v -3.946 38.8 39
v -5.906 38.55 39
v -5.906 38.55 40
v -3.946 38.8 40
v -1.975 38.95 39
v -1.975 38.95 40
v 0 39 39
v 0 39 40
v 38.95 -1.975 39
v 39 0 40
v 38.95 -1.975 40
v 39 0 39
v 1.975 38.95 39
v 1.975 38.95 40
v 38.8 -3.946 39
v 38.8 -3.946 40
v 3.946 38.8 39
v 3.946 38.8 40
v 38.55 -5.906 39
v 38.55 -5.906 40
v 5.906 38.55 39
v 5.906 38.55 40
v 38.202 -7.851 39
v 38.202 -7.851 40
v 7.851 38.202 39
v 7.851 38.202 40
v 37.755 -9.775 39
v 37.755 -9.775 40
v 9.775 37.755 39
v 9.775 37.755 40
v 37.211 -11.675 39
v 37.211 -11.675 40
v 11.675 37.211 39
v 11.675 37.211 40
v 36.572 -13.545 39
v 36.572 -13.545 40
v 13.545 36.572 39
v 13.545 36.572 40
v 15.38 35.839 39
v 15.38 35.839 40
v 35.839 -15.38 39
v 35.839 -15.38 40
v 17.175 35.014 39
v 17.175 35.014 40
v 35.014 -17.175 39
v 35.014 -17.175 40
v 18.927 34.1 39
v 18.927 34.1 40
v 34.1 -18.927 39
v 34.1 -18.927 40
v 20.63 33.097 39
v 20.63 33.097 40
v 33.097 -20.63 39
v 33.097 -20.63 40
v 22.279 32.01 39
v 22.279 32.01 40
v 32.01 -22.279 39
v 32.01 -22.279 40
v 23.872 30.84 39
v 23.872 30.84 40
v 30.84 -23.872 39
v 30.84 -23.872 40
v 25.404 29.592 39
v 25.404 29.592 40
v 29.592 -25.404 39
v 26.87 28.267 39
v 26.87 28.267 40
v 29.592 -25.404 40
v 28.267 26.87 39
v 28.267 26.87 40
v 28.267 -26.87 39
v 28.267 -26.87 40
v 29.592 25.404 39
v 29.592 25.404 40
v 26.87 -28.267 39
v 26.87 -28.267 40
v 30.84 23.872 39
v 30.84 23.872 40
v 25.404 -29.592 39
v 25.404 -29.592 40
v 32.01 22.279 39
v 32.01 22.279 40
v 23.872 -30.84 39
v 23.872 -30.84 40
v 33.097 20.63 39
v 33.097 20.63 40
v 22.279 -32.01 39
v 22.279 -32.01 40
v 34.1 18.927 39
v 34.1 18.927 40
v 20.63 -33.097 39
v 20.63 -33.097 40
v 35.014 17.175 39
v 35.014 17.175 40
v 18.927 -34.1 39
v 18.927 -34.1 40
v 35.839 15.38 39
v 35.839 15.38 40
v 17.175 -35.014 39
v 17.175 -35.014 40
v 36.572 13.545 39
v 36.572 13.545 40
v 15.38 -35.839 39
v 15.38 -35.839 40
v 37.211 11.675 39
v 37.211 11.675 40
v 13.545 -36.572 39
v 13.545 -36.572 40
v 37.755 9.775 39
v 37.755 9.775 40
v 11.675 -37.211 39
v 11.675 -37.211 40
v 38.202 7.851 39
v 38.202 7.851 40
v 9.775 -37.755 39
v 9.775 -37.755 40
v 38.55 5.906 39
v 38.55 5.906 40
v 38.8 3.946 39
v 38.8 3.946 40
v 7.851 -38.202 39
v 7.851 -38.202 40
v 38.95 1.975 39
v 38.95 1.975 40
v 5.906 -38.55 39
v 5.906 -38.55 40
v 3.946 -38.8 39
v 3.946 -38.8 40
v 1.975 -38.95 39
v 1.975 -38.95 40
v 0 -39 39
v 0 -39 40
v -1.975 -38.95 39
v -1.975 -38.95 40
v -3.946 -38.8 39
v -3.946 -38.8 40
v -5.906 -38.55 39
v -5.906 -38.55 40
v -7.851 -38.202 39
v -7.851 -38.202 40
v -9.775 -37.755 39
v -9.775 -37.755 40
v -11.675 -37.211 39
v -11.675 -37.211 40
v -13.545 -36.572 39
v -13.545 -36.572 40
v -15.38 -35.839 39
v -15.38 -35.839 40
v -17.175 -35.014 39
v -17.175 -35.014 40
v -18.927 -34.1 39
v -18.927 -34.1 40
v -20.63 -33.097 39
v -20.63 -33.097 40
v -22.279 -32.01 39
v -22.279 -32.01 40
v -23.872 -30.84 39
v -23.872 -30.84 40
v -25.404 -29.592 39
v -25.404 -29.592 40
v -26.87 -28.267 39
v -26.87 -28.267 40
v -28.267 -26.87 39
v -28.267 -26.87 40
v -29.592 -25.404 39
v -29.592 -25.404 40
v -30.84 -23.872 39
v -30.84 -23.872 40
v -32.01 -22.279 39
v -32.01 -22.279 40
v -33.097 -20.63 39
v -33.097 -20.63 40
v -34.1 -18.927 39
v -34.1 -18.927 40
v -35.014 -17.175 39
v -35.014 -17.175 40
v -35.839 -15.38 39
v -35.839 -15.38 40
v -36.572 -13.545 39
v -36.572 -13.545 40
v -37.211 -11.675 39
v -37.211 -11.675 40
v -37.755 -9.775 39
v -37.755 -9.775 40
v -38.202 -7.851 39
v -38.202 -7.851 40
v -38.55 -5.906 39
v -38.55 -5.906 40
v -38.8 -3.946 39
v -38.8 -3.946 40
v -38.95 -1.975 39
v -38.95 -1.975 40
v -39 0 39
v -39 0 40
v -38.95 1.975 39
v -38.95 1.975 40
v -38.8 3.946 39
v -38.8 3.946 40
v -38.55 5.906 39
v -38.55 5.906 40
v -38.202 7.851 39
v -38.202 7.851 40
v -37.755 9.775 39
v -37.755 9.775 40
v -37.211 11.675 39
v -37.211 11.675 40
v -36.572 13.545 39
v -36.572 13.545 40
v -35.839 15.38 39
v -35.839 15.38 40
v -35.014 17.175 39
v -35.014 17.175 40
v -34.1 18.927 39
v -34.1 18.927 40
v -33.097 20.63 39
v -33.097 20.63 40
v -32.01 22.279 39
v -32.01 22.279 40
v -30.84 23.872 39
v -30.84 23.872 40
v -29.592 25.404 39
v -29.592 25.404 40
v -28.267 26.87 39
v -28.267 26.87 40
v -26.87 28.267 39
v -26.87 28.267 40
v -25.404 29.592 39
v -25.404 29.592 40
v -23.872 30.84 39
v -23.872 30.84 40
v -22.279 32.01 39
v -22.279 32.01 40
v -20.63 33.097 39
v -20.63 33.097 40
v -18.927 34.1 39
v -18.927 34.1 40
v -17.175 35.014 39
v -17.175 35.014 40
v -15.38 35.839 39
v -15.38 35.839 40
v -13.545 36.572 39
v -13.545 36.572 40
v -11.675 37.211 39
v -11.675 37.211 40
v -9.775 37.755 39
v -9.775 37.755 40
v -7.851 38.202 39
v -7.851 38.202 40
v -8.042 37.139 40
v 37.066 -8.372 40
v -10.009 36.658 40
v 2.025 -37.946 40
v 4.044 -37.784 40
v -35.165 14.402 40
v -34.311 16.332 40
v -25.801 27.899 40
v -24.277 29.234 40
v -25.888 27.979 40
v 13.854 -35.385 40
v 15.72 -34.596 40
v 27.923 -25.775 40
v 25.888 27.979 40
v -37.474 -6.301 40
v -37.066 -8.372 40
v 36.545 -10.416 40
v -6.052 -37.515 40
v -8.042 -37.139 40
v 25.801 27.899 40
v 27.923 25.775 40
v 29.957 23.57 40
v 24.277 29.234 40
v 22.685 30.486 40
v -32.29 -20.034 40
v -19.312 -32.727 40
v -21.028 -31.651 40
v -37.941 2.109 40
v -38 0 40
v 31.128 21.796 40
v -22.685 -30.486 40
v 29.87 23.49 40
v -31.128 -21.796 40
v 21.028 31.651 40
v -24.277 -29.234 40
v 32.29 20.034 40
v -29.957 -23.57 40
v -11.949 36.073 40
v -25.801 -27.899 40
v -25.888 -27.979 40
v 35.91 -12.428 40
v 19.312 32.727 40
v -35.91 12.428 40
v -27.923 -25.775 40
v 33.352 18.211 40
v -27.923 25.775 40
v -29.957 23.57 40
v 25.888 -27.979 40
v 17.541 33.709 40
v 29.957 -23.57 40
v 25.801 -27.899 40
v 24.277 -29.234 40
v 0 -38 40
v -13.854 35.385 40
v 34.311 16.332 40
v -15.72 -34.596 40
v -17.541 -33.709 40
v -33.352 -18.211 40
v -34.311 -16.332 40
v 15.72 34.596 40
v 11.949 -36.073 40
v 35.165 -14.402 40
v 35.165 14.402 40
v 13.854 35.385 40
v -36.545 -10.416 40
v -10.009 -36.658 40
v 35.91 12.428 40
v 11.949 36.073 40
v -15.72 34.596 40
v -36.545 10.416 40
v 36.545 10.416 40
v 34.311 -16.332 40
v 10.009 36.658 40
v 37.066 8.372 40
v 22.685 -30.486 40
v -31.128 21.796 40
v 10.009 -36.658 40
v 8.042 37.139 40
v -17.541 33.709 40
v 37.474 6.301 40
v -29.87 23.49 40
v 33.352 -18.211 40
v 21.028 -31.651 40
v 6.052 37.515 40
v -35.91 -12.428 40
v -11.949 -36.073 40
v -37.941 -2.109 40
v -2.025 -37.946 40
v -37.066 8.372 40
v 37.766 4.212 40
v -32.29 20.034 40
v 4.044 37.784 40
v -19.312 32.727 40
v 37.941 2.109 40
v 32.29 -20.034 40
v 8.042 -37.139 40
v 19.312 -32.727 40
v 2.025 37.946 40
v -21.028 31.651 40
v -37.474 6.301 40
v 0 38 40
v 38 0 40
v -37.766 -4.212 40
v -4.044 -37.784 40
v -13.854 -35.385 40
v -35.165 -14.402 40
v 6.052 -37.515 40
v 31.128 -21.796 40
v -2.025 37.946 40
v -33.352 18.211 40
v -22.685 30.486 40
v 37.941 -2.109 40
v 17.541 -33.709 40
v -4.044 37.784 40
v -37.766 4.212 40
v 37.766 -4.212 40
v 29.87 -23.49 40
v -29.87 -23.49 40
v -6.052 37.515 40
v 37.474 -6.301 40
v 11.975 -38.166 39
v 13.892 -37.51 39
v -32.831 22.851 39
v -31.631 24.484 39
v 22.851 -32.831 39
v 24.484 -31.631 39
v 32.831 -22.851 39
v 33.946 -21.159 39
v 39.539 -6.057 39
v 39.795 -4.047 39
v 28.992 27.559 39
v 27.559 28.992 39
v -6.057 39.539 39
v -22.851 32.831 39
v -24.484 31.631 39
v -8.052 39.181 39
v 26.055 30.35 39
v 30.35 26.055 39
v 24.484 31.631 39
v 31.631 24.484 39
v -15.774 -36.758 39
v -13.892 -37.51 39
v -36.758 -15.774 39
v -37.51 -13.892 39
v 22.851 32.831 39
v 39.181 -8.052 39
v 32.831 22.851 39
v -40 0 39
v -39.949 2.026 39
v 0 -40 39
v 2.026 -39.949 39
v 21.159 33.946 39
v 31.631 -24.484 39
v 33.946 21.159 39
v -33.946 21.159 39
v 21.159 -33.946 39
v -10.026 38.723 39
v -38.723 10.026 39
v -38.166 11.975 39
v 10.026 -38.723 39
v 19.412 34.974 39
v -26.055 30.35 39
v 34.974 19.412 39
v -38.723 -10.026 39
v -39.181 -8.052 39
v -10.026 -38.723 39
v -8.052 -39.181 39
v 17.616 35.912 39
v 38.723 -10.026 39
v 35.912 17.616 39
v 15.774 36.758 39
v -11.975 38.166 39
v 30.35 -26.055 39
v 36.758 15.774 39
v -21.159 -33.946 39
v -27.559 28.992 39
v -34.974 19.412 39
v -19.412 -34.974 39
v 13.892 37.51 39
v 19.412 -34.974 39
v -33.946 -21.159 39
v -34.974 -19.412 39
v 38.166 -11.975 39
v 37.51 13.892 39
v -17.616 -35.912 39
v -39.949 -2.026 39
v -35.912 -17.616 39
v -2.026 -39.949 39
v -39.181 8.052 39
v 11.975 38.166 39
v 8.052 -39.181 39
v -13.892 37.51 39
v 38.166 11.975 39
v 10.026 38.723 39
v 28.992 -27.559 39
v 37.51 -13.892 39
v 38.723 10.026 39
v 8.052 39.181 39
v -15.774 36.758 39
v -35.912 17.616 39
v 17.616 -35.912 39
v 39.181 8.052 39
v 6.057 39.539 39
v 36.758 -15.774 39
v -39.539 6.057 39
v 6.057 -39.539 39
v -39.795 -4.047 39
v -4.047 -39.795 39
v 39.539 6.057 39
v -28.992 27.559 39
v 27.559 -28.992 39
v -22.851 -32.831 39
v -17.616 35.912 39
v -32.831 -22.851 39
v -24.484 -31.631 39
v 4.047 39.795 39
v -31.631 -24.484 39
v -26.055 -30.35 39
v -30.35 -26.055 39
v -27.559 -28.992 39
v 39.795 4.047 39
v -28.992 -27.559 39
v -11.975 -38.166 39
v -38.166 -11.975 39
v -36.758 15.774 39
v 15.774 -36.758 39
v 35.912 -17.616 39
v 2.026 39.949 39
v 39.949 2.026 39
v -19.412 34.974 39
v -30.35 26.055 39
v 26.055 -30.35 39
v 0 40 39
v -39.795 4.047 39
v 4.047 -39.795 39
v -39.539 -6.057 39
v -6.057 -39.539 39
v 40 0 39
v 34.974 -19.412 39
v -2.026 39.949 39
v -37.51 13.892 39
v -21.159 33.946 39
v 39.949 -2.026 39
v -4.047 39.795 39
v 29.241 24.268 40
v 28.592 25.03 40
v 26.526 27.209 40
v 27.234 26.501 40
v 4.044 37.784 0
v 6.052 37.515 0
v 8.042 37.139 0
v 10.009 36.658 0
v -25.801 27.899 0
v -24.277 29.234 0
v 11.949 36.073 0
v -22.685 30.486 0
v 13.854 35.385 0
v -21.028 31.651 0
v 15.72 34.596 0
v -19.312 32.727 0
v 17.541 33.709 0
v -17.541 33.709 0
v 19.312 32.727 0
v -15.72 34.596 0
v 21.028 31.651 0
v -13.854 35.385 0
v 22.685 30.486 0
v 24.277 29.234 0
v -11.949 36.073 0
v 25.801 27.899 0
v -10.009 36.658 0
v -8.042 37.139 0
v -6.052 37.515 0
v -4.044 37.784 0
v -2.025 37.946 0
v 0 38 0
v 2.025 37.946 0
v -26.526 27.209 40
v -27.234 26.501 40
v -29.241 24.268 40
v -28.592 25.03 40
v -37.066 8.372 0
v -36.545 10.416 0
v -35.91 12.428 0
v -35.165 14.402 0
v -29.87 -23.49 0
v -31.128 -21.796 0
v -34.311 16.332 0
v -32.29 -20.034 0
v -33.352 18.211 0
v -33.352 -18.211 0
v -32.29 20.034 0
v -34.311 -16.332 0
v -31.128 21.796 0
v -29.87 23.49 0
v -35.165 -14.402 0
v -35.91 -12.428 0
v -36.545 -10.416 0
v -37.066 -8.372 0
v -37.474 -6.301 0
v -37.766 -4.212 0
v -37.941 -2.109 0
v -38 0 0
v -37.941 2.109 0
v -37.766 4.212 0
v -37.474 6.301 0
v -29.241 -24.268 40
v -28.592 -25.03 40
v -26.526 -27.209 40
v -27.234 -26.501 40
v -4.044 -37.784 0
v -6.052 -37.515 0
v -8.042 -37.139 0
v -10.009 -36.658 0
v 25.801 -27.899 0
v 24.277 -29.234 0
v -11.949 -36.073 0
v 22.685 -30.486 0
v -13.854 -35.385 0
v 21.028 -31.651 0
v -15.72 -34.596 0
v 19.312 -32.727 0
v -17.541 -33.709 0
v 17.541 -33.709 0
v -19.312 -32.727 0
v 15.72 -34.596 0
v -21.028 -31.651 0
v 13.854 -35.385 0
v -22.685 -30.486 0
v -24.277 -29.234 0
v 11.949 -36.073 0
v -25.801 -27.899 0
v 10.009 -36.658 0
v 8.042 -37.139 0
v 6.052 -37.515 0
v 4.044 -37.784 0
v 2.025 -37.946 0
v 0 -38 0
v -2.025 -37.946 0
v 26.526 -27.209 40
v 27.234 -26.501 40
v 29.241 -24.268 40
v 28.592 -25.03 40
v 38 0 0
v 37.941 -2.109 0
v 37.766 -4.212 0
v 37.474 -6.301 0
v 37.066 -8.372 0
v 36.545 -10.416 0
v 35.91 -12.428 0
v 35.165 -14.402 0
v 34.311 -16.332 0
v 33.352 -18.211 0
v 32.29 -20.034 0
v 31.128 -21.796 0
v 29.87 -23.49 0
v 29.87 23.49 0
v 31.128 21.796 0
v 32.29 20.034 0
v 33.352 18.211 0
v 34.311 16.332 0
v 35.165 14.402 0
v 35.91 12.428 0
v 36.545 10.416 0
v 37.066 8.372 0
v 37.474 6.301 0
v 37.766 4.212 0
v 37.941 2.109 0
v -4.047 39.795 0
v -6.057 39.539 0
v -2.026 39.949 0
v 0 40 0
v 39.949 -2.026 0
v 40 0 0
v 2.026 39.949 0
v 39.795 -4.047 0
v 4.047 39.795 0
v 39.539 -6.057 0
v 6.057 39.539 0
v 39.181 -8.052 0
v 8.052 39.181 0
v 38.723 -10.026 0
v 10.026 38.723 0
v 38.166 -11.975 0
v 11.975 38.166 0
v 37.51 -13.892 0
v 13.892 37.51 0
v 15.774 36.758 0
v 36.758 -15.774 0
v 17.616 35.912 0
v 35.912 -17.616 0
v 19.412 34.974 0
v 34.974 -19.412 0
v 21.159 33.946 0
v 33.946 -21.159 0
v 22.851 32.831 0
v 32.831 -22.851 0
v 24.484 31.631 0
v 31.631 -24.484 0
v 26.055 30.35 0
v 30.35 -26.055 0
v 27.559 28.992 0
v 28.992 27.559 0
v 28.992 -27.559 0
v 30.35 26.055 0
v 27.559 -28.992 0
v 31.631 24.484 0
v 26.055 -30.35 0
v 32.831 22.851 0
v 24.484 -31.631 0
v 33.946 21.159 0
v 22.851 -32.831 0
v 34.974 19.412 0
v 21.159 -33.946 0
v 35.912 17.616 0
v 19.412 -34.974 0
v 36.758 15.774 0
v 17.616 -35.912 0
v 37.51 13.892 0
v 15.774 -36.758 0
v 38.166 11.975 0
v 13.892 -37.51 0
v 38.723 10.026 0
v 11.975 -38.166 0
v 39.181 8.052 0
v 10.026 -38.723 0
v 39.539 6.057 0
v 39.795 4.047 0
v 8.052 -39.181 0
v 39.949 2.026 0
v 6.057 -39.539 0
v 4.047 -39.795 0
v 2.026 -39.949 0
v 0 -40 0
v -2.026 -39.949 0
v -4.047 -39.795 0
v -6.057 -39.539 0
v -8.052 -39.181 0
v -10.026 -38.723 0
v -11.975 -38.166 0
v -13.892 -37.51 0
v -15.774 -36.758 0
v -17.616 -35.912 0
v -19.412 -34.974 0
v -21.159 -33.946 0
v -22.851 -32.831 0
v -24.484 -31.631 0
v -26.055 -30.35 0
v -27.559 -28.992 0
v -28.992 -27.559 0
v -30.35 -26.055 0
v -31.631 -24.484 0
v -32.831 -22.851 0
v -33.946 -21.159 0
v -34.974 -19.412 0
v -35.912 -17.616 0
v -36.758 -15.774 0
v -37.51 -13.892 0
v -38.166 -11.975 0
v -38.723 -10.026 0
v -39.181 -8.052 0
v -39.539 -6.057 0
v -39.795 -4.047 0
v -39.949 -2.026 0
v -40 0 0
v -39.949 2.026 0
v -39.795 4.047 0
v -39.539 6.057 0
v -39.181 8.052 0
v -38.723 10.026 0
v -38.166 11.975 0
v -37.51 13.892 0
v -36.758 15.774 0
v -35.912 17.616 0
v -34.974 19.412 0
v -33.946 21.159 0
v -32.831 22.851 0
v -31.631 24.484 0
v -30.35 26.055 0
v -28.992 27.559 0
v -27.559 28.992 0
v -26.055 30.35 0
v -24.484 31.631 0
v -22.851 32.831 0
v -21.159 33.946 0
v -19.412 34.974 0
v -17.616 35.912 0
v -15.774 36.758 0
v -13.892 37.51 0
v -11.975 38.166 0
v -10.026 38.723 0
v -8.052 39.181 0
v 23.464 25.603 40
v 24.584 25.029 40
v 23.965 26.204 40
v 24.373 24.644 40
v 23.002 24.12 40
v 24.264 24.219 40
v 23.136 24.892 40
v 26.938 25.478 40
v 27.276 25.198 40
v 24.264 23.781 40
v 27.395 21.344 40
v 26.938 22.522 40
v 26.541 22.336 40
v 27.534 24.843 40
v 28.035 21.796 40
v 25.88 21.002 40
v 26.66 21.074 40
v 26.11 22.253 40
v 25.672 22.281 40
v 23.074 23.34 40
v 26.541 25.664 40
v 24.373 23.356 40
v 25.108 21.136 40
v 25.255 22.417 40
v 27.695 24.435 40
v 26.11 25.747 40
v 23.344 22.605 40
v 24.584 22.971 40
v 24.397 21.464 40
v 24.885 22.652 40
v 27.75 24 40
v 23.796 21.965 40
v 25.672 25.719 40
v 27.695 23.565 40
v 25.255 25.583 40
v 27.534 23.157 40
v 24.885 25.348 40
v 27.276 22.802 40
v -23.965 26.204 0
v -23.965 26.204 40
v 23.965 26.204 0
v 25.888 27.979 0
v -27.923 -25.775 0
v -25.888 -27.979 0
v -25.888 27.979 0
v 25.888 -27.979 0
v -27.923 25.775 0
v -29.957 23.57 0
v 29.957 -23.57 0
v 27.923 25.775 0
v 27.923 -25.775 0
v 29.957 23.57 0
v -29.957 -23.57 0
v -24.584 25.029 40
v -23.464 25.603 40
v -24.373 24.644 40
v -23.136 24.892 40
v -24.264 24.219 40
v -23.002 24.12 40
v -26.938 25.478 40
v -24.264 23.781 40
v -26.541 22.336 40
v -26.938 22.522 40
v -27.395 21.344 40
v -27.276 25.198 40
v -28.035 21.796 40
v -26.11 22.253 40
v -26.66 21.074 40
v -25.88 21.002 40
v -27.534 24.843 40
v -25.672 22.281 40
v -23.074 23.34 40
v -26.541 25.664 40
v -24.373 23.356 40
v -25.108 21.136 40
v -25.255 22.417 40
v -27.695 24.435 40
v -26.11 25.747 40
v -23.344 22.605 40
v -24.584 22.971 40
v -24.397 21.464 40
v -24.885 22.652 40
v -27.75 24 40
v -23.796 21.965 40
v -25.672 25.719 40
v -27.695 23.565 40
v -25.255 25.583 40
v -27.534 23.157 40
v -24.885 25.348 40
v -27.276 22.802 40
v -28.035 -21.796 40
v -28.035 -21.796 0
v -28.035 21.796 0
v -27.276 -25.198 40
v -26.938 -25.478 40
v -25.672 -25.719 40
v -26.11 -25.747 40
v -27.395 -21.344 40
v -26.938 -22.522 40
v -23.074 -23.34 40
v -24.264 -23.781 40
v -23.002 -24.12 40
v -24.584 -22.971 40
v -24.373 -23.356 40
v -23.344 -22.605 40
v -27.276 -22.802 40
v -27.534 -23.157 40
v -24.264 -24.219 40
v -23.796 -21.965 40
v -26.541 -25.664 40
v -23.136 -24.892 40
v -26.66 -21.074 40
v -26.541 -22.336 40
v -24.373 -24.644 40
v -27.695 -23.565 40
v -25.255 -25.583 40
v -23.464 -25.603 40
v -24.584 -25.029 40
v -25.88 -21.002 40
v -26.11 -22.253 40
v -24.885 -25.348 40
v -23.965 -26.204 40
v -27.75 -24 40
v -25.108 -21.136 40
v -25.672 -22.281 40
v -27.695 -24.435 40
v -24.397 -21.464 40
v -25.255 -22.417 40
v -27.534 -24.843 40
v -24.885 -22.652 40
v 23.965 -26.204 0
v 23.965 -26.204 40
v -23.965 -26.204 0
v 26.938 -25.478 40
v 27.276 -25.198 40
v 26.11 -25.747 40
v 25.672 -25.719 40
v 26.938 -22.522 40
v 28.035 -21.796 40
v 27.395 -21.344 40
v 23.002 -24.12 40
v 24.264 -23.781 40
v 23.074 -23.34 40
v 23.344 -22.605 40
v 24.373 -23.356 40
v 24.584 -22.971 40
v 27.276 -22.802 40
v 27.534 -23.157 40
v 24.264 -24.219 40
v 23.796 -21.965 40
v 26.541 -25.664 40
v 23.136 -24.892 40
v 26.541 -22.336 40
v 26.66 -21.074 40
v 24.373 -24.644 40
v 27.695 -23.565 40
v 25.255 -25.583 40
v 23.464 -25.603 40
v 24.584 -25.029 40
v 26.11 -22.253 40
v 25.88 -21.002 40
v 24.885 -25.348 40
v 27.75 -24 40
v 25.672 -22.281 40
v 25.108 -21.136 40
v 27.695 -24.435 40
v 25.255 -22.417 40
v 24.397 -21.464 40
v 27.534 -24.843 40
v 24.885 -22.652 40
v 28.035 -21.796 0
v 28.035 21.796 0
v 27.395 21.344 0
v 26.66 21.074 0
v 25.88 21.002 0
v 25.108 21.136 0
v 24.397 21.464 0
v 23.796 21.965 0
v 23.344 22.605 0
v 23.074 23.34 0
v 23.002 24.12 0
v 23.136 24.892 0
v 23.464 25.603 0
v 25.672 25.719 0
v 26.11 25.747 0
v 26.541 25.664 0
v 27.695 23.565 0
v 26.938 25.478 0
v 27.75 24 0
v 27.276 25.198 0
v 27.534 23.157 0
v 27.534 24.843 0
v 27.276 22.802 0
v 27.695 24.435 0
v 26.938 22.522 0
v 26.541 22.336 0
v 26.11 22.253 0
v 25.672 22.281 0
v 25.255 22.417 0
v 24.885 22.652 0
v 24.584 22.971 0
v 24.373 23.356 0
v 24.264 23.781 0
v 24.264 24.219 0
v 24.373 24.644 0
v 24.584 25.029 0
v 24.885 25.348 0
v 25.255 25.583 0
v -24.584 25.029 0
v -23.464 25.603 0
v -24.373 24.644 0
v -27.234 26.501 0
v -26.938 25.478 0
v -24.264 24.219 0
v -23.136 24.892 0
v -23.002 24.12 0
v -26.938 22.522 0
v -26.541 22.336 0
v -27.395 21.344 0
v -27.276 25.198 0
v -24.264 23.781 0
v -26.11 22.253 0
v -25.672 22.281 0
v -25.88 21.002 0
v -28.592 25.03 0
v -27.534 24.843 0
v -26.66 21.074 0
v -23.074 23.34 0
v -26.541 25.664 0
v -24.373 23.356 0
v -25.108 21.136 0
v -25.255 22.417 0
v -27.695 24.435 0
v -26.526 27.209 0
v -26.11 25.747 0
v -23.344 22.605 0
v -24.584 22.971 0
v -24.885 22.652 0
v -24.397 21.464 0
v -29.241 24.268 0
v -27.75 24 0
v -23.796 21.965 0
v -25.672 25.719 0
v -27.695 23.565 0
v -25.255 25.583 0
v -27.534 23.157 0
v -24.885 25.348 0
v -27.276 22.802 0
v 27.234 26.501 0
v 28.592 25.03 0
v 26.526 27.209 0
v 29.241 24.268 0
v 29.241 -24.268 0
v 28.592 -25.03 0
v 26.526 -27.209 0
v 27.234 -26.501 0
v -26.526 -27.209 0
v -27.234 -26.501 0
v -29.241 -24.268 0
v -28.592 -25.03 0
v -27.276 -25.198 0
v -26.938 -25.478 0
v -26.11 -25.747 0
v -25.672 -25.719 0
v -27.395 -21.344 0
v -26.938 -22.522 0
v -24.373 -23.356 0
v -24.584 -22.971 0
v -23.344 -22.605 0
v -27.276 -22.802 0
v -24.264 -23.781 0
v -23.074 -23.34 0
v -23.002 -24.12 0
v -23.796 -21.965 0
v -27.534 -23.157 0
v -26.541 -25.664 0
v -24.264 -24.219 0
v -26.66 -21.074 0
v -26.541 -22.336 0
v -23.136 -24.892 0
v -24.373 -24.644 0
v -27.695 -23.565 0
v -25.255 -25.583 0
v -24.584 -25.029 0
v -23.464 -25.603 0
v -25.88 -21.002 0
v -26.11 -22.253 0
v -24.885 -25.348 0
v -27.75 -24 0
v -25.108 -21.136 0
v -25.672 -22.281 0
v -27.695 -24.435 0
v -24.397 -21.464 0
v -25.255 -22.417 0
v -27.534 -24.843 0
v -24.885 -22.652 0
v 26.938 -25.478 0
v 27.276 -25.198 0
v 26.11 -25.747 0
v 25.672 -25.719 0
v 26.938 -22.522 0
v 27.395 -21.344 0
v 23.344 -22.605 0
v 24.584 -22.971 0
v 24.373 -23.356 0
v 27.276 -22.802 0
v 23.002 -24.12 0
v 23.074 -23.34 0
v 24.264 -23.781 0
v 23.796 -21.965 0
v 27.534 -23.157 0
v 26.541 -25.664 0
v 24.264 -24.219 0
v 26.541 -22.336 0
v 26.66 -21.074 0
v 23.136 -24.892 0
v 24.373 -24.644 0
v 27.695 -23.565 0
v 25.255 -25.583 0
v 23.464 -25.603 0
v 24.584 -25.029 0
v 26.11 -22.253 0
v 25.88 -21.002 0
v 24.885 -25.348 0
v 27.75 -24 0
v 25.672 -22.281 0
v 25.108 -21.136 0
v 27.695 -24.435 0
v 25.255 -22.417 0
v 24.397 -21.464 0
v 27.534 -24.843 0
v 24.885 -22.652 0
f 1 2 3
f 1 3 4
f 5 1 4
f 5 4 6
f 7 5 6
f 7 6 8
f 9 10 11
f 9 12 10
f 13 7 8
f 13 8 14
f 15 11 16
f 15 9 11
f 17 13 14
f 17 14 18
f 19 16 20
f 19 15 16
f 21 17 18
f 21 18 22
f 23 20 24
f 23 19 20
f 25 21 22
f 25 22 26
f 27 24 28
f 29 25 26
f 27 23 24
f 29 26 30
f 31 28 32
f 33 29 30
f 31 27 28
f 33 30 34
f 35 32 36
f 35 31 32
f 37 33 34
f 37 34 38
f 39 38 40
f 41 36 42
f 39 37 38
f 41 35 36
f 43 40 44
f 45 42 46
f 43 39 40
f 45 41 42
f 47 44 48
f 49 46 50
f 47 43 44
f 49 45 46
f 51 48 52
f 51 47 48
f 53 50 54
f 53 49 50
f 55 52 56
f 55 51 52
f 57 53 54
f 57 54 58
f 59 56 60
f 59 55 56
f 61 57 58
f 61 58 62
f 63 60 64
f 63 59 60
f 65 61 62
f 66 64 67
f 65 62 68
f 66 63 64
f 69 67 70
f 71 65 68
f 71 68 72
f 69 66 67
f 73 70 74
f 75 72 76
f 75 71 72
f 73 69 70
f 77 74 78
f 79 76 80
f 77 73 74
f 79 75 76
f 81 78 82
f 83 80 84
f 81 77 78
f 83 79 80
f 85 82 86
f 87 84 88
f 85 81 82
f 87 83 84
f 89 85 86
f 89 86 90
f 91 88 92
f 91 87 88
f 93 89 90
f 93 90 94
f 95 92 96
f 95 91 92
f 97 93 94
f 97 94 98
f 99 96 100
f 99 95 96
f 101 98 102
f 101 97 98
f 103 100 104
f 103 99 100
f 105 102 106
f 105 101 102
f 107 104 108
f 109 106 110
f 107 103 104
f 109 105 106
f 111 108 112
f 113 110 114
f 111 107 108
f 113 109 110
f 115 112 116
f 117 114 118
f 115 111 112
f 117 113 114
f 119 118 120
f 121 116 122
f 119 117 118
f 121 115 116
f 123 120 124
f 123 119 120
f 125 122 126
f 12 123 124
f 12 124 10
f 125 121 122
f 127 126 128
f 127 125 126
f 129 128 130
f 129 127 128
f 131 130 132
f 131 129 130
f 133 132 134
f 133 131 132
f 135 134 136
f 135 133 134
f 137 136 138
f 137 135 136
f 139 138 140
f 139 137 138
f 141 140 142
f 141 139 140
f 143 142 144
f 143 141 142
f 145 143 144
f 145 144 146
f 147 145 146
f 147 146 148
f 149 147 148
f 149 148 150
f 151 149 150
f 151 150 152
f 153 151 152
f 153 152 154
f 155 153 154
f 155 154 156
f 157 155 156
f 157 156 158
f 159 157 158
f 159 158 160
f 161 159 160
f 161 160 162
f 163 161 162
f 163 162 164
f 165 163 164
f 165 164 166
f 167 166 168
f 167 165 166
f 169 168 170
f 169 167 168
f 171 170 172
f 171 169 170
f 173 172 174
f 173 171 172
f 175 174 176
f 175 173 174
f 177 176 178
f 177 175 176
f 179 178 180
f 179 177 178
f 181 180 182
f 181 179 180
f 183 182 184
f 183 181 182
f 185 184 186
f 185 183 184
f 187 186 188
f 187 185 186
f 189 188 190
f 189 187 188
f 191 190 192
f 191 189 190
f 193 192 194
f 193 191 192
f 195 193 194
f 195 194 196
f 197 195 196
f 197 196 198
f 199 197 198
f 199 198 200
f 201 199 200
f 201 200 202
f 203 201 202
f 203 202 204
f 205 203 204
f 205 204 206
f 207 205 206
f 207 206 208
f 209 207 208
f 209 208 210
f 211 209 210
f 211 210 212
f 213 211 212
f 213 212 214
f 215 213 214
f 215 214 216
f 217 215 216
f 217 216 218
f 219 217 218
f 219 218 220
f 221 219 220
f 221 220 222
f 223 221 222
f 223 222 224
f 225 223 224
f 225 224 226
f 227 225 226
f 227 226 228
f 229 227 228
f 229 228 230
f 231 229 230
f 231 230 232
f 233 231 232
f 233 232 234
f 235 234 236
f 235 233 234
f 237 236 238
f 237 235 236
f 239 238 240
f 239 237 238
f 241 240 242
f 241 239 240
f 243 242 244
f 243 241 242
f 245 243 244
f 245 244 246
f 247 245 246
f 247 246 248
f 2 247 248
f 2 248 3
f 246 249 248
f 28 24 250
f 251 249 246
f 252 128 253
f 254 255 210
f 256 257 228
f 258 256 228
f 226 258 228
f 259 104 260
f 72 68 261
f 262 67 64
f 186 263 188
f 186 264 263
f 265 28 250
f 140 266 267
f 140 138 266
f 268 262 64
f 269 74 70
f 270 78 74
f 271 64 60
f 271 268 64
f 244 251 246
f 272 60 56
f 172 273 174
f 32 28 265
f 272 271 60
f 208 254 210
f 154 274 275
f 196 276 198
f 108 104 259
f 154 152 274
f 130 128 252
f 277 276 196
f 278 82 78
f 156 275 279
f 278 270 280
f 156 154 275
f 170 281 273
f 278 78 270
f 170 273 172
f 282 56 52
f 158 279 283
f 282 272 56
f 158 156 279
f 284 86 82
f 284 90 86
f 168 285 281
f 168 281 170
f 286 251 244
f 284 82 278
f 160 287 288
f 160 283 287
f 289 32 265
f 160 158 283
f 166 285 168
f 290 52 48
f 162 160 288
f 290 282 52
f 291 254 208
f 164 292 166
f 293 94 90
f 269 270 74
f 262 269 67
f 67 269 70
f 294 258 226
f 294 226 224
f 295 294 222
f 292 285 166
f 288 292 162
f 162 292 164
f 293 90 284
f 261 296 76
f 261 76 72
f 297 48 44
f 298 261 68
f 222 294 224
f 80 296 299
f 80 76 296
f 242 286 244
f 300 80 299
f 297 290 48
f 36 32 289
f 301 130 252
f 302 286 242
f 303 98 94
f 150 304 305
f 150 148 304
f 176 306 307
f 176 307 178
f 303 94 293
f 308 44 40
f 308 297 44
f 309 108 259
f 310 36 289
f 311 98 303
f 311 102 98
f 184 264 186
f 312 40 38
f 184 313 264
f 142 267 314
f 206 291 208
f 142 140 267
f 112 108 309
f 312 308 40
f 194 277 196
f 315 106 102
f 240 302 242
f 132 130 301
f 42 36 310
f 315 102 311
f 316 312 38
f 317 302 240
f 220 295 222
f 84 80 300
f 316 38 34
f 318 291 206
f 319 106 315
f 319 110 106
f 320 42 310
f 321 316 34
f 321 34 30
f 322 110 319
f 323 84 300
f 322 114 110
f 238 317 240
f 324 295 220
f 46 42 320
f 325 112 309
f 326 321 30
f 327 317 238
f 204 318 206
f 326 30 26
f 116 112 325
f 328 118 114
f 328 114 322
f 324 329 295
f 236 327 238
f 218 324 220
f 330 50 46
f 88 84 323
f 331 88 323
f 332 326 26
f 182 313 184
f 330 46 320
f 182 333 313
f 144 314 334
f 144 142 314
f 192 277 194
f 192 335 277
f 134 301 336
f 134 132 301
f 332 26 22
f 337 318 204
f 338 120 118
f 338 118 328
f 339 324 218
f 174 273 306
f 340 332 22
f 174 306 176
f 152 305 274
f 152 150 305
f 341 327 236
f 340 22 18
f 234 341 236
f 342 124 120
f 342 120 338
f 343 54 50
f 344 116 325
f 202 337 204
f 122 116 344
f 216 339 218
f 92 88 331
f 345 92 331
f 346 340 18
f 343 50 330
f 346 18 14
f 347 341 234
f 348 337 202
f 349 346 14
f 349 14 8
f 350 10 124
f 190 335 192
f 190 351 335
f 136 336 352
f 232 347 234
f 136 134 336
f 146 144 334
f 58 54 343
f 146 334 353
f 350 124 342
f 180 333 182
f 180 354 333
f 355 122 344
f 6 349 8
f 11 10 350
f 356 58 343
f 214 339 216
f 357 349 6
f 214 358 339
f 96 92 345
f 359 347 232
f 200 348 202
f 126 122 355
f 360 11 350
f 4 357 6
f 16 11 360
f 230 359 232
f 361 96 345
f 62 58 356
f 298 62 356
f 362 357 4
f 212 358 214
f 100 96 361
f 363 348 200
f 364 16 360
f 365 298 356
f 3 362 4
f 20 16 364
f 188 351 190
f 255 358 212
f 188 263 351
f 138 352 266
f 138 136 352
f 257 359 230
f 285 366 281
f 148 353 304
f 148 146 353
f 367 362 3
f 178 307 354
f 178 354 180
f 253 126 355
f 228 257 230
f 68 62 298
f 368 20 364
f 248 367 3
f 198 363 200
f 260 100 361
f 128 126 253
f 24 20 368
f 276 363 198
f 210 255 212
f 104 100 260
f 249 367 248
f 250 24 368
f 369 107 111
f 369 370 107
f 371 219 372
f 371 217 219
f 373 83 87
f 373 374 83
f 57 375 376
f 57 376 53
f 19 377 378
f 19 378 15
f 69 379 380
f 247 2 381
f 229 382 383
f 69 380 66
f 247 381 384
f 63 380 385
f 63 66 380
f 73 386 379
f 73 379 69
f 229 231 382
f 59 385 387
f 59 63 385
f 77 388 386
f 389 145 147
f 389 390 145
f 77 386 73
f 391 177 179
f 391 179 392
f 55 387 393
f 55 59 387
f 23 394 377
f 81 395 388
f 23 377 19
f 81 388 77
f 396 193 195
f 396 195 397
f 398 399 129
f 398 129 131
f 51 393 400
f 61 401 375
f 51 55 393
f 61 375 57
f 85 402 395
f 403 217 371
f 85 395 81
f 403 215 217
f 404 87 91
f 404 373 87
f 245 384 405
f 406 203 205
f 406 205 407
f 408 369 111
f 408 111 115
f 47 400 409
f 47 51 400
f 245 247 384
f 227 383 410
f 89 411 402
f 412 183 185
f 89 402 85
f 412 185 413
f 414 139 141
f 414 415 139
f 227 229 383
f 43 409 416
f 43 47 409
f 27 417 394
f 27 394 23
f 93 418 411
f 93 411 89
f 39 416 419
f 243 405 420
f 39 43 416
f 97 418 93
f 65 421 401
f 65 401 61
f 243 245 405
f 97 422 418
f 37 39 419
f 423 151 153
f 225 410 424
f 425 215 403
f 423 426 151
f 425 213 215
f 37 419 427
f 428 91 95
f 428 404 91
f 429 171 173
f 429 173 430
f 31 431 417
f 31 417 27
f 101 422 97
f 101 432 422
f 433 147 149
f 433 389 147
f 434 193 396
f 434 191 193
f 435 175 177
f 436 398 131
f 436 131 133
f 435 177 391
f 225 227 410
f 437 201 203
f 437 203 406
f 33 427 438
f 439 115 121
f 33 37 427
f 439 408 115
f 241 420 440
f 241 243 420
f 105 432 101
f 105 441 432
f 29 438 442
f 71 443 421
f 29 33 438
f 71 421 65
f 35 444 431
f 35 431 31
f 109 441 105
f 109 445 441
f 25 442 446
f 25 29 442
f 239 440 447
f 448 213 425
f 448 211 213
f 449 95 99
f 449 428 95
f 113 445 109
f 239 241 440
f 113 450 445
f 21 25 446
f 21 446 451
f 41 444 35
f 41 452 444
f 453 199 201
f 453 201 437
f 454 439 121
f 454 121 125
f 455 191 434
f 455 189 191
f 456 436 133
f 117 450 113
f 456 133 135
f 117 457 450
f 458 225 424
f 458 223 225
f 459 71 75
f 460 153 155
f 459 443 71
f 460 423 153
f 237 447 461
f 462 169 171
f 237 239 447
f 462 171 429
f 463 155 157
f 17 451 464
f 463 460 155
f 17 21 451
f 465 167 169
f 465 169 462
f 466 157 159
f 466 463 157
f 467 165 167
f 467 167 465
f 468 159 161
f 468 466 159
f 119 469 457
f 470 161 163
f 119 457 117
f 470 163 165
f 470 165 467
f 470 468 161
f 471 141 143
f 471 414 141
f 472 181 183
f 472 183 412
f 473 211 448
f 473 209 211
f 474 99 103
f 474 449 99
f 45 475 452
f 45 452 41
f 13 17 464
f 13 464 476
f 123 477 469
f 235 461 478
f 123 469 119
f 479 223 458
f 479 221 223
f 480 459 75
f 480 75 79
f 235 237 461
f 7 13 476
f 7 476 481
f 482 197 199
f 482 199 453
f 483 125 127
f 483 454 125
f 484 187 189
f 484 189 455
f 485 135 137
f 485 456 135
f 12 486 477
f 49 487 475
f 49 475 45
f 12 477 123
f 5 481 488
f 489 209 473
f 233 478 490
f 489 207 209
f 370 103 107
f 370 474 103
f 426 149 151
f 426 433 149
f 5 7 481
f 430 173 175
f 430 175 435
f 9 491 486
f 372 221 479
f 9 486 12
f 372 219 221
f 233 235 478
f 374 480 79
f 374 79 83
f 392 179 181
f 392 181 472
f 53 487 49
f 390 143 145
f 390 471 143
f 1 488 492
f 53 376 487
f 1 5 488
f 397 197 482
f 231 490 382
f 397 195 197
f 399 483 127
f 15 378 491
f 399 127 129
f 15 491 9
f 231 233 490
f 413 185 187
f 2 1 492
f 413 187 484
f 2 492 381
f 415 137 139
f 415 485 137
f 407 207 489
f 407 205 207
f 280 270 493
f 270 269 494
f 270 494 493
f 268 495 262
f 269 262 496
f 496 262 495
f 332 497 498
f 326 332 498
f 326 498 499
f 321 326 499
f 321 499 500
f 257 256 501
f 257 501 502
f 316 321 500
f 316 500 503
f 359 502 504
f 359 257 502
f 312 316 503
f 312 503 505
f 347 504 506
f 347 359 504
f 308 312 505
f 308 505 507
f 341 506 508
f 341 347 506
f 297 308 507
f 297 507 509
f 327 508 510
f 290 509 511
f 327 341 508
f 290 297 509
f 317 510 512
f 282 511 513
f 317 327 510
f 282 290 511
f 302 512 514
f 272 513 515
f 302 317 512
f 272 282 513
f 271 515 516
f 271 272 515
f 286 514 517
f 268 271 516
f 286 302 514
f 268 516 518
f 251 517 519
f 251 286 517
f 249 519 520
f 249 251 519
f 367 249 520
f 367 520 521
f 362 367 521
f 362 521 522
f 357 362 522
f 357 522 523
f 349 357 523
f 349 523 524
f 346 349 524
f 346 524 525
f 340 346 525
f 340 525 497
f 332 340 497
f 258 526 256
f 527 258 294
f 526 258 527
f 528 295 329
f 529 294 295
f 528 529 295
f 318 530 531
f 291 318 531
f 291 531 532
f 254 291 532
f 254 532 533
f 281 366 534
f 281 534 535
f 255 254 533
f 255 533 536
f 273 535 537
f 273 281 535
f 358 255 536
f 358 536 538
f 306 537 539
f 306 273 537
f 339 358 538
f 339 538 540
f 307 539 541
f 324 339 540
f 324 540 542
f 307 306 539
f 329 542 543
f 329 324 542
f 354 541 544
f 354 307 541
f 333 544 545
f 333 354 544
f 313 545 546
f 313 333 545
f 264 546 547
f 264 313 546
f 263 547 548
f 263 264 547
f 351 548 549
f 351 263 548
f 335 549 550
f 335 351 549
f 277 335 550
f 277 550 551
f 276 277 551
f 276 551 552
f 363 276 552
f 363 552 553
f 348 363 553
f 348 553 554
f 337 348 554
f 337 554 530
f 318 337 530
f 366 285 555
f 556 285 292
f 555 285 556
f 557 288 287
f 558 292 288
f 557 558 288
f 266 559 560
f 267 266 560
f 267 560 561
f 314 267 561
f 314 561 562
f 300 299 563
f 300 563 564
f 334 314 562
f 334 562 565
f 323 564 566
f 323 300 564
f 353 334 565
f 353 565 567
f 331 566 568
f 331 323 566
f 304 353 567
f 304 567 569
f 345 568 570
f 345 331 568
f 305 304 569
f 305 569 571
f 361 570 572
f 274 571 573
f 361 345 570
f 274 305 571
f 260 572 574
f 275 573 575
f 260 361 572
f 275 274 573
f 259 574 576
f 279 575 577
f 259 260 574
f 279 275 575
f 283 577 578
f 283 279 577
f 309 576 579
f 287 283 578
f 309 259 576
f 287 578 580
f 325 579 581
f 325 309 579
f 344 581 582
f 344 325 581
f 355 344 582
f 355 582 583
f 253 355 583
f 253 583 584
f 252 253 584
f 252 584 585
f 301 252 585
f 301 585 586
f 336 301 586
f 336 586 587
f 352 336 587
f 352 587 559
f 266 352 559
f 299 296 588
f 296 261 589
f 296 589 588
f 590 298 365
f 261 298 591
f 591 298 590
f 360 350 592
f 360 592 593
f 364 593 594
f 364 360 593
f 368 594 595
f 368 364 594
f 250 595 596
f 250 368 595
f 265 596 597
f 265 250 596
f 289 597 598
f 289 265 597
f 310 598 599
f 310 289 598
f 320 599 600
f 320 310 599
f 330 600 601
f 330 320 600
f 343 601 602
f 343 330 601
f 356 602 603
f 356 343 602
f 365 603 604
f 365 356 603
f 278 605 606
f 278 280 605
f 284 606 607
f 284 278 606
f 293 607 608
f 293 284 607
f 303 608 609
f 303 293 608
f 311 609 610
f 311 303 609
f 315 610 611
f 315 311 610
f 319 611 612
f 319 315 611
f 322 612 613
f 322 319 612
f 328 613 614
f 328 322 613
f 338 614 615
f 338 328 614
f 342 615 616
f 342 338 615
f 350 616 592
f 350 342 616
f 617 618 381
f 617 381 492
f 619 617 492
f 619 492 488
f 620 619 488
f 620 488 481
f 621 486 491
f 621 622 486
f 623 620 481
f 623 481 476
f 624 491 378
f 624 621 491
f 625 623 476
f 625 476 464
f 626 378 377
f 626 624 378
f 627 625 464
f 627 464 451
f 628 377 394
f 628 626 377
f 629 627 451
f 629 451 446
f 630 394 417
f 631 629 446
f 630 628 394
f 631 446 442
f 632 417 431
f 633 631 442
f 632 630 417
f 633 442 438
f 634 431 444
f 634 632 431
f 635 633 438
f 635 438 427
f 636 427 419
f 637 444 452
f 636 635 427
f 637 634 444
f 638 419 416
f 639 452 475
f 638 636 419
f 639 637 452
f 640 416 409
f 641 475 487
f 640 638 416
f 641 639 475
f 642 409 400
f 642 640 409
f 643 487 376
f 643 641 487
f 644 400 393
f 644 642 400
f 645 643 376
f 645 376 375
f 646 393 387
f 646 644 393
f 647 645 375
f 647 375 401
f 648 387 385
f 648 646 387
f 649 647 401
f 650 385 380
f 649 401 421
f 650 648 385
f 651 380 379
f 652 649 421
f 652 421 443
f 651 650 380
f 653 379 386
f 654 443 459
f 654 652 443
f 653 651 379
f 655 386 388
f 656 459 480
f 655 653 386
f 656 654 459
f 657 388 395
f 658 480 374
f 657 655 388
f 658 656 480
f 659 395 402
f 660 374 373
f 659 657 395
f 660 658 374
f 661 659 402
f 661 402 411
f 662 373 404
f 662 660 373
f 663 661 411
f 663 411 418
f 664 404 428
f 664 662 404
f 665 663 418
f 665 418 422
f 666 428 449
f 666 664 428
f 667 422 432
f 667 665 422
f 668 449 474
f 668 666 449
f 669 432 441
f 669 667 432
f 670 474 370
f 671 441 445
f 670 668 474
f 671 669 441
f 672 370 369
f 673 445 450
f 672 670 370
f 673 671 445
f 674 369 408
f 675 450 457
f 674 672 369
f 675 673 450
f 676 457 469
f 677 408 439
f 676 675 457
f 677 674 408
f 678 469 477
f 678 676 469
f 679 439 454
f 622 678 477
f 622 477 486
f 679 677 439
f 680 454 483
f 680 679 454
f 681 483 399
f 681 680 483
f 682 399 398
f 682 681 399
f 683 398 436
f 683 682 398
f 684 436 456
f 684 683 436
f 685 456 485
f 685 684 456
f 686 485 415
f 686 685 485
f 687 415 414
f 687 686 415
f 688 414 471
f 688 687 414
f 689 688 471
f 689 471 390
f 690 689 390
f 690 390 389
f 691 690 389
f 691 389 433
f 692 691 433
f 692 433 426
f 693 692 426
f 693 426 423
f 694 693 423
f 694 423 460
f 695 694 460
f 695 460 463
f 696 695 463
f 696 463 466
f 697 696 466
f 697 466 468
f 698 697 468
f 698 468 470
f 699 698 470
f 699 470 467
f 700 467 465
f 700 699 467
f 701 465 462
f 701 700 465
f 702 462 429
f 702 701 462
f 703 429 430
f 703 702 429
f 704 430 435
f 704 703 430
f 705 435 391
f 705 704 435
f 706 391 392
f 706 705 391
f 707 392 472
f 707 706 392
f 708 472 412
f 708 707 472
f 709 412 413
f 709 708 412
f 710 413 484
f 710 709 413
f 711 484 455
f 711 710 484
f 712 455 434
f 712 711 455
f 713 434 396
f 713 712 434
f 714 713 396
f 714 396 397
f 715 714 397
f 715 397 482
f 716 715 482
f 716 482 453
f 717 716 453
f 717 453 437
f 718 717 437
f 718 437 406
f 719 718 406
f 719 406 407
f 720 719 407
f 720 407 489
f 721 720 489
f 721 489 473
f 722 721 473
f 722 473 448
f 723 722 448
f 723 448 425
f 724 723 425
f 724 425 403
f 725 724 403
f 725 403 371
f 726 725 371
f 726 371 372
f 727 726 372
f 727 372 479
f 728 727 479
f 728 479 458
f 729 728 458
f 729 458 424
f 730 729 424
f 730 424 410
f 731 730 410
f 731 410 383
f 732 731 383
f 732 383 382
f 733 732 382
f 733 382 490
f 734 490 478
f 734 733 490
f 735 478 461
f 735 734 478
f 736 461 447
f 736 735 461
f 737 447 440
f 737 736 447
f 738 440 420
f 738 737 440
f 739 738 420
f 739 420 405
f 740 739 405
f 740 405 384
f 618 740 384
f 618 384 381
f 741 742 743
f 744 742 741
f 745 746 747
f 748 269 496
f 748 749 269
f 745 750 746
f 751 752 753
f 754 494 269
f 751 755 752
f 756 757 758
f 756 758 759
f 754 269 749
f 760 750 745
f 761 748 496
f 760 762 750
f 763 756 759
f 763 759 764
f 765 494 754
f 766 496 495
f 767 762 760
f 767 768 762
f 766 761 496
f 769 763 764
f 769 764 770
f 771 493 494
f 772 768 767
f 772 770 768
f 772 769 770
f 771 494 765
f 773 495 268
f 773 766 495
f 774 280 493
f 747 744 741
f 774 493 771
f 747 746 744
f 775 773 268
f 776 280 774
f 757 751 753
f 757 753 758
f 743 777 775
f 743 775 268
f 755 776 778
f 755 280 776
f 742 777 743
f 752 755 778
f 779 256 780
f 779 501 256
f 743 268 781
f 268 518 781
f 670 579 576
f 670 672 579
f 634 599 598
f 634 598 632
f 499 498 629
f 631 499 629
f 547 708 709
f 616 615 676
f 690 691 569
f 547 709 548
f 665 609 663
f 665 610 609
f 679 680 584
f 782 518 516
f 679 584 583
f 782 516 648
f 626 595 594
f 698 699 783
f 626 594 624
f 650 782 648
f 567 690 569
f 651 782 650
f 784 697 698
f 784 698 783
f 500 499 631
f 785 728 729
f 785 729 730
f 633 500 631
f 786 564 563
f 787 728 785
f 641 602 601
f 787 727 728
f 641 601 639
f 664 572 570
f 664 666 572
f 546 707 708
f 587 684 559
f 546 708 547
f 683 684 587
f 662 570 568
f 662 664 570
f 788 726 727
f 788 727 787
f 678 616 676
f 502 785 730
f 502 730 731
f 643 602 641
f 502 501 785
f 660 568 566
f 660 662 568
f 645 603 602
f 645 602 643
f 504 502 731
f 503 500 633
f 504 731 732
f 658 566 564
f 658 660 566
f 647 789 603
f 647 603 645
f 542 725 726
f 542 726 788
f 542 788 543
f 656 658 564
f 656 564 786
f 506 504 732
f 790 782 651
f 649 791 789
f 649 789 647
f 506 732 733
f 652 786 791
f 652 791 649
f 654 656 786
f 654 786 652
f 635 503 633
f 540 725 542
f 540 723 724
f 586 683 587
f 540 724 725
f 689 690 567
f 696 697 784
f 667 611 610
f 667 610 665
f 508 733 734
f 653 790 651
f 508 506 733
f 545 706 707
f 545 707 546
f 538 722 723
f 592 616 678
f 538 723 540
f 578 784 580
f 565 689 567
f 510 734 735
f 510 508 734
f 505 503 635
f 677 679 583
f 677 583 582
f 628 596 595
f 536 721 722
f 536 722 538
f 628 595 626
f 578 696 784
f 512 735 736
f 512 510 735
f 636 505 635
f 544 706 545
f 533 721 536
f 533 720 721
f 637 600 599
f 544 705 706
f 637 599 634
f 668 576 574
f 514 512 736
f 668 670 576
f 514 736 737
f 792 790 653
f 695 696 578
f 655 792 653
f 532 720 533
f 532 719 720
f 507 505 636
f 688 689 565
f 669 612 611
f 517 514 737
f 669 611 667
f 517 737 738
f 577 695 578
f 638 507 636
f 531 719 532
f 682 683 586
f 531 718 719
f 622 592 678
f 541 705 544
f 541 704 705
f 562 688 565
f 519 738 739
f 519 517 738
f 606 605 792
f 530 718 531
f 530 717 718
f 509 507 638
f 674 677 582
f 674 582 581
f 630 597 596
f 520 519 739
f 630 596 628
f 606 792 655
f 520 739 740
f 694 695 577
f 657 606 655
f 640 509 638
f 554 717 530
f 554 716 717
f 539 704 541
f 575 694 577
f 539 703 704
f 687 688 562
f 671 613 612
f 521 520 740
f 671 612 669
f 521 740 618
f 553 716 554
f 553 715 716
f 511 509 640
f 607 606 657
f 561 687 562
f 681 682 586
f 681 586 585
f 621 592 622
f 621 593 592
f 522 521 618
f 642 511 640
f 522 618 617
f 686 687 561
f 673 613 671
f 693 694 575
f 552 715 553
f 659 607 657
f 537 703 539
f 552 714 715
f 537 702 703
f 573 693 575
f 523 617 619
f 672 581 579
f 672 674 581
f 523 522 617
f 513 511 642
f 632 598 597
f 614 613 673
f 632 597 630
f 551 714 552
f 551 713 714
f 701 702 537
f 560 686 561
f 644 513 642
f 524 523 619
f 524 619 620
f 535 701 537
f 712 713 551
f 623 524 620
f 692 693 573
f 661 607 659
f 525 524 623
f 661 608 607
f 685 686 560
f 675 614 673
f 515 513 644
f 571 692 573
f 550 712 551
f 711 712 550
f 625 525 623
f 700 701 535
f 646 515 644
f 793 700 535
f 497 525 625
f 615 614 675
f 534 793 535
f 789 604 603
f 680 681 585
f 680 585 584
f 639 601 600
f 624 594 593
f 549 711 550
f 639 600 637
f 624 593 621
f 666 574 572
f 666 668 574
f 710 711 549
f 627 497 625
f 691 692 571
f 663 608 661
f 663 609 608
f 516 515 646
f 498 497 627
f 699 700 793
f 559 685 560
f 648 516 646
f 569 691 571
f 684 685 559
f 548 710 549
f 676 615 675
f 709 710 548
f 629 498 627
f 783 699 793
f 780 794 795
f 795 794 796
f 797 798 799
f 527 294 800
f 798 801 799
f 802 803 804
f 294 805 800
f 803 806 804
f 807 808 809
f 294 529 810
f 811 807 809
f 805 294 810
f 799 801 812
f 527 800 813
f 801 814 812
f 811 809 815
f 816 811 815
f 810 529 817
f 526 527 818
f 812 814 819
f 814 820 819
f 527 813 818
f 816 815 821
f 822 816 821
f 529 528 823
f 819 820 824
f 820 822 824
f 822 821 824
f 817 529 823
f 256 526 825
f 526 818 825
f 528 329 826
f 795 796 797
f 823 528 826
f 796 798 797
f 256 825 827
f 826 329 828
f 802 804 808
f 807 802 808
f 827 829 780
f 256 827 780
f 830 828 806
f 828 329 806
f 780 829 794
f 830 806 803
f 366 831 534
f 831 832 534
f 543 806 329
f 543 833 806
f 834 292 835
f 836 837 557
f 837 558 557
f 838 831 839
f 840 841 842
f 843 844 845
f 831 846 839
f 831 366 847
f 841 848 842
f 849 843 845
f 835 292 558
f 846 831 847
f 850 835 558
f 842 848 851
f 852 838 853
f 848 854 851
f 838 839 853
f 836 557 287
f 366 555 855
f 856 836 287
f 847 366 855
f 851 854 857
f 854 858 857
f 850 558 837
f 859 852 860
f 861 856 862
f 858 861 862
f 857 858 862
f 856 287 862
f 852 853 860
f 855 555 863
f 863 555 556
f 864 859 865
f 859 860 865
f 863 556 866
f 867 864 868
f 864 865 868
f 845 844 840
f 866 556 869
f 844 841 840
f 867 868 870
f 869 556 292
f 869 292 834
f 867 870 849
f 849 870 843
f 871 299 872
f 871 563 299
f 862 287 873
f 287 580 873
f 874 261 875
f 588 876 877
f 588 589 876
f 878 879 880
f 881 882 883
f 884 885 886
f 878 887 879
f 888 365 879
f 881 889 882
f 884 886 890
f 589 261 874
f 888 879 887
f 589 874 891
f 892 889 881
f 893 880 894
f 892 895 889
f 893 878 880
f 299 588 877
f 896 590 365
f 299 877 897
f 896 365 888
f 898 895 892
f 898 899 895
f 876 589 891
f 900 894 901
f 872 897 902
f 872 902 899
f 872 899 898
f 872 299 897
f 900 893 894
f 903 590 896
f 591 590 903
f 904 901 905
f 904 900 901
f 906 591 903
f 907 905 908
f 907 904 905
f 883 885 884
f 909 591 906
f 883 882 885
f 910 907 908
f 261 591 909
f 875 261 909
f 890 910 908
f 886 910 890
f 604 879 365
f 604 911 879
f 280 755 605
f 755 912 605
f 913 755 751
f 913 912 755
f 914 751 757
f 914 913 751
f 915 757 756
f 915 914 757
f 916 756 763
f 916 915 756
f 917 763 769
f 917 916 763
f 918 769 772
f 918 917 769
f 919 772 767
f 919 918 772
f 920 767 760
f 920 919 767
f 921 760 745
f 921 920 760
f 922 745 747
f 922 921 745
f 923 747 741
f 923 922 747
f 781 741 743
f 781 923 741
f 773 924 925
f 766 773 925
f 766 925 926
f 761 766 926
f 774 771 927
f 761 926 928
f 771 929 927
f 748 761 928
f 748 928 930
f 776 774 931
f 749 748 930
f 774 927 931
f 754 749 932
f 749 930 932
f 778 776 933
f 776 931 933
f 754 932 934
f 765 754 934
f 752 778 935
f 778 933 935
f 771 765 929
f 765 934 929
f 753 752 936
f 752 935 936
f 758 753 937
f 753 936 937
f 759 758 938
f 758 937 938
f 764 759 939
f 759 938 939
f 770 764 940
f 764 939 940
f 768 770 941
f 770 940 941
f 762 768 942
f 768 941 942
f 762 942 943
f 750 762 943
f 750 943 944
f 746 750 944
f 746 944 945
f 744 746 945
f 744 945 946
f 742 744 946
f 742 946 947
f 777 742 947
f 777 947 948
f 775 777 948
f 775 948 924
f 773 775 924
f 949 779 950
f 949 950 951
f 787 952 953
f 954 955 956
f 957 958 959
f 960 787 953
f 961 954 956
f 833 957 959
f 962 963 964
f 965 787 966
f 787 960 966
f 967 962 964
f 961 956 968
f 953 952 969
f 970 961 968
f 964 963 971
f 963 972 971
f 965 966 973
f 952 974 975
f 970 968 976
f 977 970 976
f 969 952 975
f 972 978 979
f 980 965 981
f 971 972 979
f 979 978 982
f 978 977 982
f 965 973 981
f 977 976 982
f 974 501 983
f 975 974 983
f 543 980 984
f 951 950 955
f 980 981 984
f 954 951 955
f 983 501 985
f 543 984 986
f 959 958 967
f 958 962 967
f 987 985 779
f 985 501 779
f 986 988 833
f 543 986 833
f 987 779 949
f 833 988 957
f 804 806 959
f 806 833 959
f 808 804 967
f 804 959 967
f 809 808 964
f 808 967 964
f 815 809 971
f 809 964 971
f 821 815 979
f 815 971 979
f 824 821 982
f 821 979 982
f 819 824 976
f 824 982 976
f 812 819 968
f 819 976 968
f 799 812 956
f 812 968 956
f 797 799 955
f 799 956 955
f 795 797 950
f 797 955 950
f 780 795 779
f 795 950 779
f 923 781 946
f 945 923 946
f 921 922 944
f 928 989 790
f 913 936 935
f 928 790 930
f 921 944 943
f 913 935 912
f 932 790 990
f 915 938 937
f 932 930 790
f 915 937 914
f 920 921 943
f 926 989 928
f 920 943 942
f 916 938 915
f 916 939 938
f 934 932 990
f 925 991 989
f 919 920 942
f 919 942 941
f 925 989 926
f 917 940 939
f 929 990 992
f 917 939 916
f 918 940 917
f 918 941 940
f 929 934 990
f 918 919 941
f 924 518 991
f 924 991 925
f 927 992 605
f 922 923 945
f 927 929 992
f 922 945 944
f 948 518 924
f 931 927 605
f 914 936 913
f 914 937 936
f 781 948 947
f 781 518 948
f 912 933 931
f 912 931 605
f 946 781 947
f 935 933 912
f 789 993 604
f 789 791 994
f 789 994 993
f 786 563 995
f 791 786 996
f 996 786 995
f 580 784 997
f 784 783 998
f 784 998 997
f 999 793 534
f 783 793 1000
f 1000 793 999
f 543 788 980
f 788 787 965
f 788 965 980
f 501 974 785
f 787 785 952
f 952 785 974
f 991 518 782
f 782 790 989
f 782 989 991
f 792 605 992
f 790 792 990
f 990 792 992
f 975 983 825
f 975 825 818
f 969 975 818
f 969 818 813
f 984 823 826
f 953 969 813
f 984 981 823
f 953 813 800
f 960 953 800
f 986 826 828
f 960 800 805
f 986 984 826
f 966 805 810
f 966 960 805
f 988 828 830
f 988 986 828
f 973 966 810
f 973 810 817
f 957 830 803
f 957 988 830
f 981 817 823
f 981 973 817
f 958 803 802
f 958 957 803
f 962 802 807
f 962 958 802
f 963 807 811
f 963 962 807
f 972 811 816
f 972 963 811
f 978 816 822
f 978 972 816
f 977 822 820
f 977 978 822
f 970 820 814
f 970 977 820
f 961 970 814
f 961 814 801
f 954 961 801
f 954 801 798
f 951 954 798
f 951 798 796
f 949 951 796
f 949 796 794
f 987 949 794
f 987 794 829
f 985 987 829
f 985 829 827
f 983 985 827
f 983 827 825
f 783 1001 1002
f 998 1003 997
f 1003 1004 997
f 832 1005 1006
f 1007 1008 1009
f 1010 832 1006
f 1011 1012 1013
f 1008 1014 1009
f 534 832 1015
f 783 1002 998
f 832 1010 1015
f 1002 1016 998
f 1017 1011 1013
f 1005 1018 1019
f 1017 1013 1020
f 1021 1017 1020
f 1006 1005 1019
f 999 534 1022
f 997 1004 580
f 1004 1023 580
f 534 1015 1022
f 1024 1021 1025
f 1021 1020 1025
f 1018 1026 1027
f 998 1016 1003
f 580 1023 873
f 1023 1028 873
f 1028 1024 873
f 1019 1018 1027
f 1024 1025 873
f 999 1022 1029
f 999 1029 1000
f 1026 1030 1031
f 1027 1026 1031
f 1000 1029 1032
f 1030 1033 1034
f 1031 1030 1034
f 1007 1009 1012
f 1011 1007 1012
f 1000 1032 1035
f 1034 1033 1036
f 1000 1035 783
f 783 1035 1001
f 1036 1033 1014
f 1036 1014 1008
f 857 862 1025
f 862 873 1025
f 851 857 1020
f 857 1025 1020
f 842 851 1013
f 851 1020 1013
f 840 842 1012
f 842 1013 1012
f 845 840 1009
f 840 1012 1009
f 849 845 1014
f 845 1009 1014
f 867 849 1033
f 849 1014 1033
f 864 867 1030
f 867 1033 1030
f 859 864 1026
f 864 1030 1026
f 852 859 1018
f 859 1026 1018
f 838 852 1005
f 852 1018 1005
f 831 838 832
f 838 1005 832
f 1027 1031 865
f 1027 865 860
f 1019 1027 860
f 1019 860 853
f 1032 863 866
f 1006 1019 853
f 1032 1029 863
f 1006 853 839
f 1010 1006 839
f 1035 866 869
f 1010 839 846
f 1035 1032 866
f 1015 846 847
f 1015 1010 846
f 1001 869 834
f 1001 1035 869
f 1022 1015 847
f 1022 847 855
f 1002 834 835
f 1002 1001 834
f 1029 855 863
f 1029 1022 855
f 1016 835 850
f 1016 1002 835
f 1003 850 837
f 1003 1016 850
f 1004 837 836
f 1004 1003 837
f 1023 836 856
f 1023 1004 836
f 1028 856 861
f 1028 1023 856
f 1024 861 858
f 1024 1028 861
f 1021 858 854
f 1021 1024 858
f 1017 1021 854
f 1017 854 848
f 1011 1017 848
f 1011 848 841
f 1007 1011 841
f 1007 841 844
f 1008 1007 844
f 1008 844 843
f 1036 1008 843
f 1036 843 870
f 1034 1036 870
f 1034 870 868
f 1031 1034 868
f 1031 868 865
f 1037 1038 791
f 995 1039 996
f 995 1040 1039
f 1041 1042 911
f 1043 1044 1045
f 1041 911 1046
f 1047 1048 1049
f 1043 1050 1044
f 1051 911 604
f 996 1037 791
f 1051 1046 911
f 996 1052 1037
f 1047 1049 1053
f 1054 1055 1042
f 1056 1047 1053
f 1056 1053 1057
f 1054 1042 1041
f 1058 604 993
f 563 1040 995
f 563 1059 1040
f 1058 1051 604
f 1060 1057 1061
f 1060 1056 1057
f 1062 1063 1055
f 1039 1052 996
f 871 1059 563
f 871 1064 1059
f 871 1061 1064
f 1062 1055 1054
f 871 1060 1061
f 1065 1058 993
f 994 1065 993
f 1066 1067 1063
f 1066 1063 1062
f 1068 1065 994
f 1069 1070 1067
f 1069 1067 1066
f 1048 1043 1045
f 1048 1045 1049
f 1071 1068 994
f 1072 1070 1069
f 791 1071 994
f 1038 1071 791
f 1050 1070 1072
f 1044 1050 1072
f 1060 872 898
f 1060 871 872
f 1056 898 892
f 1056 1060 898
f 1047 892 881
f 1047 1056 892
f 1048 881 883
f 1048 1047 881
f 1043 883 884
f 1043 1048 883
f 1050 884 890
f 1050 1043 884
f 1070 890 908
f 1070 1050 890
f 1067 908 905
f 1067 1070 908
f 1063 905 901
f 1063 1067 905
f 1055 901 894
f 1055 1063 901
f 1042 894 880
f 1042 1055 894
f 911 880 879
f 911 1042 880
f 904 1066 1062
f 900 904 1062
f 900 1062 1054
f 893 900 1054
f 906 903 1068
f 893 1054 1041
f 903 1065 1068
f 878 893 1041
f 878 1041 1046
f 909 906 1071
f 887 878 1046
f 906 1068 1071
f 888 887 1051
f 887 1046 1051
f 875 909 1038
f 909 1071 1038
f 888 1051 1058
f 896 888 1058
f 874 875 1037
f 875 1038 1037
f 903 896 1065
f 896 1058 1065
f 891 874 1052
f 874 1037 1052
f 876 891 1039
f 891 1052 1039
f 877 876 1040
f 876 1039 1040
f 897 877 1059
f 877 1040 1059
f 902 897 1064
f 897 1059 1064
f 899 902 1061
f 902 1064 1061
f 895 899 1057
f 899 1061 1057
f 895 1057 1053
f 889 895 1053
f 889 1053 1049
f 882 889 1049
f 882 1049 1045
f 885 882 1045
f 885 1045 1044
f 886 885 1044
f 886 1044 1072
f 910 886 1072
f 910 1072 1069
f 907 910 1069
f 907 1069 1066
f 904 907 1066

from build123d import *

# Parameters (mm, degrees)
SKETCH001_R = 1.75
PAD_DEPTH   = 40


with BuildPart() as part:
    # Sketch → Revolution (revolve)
    with BuildSketch(Plane.XZ):
        Polygon((38, 0), (38, 40), (39, 40), (39, 39), (40, 39), (40, 0), align=None)
    revolve(axis=Axis((0, 0, 0), (0, 0, 1)))

    # Sketch001 → Pad (new body)
    with BuildSketch(Plane(origin=(0, 0, 0), x_dir=(1, 0, 0), z_dir=(0, 0, -1))):
        with BuildLine():
            ThreePointArc((23.9651596918, 26.2044103339), (23.7955896661, 21.9651596918), (28.0348403082, 21.7955896661))
            Line((28.0348403082, 21.7955896661), (29.957371204, 23.57023357))
            Line((29.957371204, 23.57023357), (25.8876905876, 27.9790542377))
            Line((25.8876905876, 27.9790542377), (23.9651596918, 26.2044103339))
        make_face()
        with Locations((26, 24)):
            Circle(SKETCH001_R, mode=Mode.SUBTRACT)
        with BuildLine():
            ThreePointArc((28.0348403082, -21.7955896661), (23.7955896661, -21.9651596918), (23.9651596918, -26.2044103339))
            Line((25.8876905876, -27.9790542377), (23.9651596918, -26.2044103339))
            Line((29.957371204, -23.57023357), (25.8876905876, -27.9790542377))
            Line((28.0348403082, -21.7955896661), (29.957371204, -23.57023357))
        make_face()
        with Locations((26, -24)):
            Circle(SKETCH001_R, mode=Mode.SUBTRACT)
    pad = extrude(amount=-PAD_DEPTH)

    # Mirrored: Pad across Sketch001 V_Axis
    add(pad.mirror(Plane(origin=(0, 0, 0), x_dir=(0, 0, -1), z_dir=(1, 0, 0))))


solid = part.part
